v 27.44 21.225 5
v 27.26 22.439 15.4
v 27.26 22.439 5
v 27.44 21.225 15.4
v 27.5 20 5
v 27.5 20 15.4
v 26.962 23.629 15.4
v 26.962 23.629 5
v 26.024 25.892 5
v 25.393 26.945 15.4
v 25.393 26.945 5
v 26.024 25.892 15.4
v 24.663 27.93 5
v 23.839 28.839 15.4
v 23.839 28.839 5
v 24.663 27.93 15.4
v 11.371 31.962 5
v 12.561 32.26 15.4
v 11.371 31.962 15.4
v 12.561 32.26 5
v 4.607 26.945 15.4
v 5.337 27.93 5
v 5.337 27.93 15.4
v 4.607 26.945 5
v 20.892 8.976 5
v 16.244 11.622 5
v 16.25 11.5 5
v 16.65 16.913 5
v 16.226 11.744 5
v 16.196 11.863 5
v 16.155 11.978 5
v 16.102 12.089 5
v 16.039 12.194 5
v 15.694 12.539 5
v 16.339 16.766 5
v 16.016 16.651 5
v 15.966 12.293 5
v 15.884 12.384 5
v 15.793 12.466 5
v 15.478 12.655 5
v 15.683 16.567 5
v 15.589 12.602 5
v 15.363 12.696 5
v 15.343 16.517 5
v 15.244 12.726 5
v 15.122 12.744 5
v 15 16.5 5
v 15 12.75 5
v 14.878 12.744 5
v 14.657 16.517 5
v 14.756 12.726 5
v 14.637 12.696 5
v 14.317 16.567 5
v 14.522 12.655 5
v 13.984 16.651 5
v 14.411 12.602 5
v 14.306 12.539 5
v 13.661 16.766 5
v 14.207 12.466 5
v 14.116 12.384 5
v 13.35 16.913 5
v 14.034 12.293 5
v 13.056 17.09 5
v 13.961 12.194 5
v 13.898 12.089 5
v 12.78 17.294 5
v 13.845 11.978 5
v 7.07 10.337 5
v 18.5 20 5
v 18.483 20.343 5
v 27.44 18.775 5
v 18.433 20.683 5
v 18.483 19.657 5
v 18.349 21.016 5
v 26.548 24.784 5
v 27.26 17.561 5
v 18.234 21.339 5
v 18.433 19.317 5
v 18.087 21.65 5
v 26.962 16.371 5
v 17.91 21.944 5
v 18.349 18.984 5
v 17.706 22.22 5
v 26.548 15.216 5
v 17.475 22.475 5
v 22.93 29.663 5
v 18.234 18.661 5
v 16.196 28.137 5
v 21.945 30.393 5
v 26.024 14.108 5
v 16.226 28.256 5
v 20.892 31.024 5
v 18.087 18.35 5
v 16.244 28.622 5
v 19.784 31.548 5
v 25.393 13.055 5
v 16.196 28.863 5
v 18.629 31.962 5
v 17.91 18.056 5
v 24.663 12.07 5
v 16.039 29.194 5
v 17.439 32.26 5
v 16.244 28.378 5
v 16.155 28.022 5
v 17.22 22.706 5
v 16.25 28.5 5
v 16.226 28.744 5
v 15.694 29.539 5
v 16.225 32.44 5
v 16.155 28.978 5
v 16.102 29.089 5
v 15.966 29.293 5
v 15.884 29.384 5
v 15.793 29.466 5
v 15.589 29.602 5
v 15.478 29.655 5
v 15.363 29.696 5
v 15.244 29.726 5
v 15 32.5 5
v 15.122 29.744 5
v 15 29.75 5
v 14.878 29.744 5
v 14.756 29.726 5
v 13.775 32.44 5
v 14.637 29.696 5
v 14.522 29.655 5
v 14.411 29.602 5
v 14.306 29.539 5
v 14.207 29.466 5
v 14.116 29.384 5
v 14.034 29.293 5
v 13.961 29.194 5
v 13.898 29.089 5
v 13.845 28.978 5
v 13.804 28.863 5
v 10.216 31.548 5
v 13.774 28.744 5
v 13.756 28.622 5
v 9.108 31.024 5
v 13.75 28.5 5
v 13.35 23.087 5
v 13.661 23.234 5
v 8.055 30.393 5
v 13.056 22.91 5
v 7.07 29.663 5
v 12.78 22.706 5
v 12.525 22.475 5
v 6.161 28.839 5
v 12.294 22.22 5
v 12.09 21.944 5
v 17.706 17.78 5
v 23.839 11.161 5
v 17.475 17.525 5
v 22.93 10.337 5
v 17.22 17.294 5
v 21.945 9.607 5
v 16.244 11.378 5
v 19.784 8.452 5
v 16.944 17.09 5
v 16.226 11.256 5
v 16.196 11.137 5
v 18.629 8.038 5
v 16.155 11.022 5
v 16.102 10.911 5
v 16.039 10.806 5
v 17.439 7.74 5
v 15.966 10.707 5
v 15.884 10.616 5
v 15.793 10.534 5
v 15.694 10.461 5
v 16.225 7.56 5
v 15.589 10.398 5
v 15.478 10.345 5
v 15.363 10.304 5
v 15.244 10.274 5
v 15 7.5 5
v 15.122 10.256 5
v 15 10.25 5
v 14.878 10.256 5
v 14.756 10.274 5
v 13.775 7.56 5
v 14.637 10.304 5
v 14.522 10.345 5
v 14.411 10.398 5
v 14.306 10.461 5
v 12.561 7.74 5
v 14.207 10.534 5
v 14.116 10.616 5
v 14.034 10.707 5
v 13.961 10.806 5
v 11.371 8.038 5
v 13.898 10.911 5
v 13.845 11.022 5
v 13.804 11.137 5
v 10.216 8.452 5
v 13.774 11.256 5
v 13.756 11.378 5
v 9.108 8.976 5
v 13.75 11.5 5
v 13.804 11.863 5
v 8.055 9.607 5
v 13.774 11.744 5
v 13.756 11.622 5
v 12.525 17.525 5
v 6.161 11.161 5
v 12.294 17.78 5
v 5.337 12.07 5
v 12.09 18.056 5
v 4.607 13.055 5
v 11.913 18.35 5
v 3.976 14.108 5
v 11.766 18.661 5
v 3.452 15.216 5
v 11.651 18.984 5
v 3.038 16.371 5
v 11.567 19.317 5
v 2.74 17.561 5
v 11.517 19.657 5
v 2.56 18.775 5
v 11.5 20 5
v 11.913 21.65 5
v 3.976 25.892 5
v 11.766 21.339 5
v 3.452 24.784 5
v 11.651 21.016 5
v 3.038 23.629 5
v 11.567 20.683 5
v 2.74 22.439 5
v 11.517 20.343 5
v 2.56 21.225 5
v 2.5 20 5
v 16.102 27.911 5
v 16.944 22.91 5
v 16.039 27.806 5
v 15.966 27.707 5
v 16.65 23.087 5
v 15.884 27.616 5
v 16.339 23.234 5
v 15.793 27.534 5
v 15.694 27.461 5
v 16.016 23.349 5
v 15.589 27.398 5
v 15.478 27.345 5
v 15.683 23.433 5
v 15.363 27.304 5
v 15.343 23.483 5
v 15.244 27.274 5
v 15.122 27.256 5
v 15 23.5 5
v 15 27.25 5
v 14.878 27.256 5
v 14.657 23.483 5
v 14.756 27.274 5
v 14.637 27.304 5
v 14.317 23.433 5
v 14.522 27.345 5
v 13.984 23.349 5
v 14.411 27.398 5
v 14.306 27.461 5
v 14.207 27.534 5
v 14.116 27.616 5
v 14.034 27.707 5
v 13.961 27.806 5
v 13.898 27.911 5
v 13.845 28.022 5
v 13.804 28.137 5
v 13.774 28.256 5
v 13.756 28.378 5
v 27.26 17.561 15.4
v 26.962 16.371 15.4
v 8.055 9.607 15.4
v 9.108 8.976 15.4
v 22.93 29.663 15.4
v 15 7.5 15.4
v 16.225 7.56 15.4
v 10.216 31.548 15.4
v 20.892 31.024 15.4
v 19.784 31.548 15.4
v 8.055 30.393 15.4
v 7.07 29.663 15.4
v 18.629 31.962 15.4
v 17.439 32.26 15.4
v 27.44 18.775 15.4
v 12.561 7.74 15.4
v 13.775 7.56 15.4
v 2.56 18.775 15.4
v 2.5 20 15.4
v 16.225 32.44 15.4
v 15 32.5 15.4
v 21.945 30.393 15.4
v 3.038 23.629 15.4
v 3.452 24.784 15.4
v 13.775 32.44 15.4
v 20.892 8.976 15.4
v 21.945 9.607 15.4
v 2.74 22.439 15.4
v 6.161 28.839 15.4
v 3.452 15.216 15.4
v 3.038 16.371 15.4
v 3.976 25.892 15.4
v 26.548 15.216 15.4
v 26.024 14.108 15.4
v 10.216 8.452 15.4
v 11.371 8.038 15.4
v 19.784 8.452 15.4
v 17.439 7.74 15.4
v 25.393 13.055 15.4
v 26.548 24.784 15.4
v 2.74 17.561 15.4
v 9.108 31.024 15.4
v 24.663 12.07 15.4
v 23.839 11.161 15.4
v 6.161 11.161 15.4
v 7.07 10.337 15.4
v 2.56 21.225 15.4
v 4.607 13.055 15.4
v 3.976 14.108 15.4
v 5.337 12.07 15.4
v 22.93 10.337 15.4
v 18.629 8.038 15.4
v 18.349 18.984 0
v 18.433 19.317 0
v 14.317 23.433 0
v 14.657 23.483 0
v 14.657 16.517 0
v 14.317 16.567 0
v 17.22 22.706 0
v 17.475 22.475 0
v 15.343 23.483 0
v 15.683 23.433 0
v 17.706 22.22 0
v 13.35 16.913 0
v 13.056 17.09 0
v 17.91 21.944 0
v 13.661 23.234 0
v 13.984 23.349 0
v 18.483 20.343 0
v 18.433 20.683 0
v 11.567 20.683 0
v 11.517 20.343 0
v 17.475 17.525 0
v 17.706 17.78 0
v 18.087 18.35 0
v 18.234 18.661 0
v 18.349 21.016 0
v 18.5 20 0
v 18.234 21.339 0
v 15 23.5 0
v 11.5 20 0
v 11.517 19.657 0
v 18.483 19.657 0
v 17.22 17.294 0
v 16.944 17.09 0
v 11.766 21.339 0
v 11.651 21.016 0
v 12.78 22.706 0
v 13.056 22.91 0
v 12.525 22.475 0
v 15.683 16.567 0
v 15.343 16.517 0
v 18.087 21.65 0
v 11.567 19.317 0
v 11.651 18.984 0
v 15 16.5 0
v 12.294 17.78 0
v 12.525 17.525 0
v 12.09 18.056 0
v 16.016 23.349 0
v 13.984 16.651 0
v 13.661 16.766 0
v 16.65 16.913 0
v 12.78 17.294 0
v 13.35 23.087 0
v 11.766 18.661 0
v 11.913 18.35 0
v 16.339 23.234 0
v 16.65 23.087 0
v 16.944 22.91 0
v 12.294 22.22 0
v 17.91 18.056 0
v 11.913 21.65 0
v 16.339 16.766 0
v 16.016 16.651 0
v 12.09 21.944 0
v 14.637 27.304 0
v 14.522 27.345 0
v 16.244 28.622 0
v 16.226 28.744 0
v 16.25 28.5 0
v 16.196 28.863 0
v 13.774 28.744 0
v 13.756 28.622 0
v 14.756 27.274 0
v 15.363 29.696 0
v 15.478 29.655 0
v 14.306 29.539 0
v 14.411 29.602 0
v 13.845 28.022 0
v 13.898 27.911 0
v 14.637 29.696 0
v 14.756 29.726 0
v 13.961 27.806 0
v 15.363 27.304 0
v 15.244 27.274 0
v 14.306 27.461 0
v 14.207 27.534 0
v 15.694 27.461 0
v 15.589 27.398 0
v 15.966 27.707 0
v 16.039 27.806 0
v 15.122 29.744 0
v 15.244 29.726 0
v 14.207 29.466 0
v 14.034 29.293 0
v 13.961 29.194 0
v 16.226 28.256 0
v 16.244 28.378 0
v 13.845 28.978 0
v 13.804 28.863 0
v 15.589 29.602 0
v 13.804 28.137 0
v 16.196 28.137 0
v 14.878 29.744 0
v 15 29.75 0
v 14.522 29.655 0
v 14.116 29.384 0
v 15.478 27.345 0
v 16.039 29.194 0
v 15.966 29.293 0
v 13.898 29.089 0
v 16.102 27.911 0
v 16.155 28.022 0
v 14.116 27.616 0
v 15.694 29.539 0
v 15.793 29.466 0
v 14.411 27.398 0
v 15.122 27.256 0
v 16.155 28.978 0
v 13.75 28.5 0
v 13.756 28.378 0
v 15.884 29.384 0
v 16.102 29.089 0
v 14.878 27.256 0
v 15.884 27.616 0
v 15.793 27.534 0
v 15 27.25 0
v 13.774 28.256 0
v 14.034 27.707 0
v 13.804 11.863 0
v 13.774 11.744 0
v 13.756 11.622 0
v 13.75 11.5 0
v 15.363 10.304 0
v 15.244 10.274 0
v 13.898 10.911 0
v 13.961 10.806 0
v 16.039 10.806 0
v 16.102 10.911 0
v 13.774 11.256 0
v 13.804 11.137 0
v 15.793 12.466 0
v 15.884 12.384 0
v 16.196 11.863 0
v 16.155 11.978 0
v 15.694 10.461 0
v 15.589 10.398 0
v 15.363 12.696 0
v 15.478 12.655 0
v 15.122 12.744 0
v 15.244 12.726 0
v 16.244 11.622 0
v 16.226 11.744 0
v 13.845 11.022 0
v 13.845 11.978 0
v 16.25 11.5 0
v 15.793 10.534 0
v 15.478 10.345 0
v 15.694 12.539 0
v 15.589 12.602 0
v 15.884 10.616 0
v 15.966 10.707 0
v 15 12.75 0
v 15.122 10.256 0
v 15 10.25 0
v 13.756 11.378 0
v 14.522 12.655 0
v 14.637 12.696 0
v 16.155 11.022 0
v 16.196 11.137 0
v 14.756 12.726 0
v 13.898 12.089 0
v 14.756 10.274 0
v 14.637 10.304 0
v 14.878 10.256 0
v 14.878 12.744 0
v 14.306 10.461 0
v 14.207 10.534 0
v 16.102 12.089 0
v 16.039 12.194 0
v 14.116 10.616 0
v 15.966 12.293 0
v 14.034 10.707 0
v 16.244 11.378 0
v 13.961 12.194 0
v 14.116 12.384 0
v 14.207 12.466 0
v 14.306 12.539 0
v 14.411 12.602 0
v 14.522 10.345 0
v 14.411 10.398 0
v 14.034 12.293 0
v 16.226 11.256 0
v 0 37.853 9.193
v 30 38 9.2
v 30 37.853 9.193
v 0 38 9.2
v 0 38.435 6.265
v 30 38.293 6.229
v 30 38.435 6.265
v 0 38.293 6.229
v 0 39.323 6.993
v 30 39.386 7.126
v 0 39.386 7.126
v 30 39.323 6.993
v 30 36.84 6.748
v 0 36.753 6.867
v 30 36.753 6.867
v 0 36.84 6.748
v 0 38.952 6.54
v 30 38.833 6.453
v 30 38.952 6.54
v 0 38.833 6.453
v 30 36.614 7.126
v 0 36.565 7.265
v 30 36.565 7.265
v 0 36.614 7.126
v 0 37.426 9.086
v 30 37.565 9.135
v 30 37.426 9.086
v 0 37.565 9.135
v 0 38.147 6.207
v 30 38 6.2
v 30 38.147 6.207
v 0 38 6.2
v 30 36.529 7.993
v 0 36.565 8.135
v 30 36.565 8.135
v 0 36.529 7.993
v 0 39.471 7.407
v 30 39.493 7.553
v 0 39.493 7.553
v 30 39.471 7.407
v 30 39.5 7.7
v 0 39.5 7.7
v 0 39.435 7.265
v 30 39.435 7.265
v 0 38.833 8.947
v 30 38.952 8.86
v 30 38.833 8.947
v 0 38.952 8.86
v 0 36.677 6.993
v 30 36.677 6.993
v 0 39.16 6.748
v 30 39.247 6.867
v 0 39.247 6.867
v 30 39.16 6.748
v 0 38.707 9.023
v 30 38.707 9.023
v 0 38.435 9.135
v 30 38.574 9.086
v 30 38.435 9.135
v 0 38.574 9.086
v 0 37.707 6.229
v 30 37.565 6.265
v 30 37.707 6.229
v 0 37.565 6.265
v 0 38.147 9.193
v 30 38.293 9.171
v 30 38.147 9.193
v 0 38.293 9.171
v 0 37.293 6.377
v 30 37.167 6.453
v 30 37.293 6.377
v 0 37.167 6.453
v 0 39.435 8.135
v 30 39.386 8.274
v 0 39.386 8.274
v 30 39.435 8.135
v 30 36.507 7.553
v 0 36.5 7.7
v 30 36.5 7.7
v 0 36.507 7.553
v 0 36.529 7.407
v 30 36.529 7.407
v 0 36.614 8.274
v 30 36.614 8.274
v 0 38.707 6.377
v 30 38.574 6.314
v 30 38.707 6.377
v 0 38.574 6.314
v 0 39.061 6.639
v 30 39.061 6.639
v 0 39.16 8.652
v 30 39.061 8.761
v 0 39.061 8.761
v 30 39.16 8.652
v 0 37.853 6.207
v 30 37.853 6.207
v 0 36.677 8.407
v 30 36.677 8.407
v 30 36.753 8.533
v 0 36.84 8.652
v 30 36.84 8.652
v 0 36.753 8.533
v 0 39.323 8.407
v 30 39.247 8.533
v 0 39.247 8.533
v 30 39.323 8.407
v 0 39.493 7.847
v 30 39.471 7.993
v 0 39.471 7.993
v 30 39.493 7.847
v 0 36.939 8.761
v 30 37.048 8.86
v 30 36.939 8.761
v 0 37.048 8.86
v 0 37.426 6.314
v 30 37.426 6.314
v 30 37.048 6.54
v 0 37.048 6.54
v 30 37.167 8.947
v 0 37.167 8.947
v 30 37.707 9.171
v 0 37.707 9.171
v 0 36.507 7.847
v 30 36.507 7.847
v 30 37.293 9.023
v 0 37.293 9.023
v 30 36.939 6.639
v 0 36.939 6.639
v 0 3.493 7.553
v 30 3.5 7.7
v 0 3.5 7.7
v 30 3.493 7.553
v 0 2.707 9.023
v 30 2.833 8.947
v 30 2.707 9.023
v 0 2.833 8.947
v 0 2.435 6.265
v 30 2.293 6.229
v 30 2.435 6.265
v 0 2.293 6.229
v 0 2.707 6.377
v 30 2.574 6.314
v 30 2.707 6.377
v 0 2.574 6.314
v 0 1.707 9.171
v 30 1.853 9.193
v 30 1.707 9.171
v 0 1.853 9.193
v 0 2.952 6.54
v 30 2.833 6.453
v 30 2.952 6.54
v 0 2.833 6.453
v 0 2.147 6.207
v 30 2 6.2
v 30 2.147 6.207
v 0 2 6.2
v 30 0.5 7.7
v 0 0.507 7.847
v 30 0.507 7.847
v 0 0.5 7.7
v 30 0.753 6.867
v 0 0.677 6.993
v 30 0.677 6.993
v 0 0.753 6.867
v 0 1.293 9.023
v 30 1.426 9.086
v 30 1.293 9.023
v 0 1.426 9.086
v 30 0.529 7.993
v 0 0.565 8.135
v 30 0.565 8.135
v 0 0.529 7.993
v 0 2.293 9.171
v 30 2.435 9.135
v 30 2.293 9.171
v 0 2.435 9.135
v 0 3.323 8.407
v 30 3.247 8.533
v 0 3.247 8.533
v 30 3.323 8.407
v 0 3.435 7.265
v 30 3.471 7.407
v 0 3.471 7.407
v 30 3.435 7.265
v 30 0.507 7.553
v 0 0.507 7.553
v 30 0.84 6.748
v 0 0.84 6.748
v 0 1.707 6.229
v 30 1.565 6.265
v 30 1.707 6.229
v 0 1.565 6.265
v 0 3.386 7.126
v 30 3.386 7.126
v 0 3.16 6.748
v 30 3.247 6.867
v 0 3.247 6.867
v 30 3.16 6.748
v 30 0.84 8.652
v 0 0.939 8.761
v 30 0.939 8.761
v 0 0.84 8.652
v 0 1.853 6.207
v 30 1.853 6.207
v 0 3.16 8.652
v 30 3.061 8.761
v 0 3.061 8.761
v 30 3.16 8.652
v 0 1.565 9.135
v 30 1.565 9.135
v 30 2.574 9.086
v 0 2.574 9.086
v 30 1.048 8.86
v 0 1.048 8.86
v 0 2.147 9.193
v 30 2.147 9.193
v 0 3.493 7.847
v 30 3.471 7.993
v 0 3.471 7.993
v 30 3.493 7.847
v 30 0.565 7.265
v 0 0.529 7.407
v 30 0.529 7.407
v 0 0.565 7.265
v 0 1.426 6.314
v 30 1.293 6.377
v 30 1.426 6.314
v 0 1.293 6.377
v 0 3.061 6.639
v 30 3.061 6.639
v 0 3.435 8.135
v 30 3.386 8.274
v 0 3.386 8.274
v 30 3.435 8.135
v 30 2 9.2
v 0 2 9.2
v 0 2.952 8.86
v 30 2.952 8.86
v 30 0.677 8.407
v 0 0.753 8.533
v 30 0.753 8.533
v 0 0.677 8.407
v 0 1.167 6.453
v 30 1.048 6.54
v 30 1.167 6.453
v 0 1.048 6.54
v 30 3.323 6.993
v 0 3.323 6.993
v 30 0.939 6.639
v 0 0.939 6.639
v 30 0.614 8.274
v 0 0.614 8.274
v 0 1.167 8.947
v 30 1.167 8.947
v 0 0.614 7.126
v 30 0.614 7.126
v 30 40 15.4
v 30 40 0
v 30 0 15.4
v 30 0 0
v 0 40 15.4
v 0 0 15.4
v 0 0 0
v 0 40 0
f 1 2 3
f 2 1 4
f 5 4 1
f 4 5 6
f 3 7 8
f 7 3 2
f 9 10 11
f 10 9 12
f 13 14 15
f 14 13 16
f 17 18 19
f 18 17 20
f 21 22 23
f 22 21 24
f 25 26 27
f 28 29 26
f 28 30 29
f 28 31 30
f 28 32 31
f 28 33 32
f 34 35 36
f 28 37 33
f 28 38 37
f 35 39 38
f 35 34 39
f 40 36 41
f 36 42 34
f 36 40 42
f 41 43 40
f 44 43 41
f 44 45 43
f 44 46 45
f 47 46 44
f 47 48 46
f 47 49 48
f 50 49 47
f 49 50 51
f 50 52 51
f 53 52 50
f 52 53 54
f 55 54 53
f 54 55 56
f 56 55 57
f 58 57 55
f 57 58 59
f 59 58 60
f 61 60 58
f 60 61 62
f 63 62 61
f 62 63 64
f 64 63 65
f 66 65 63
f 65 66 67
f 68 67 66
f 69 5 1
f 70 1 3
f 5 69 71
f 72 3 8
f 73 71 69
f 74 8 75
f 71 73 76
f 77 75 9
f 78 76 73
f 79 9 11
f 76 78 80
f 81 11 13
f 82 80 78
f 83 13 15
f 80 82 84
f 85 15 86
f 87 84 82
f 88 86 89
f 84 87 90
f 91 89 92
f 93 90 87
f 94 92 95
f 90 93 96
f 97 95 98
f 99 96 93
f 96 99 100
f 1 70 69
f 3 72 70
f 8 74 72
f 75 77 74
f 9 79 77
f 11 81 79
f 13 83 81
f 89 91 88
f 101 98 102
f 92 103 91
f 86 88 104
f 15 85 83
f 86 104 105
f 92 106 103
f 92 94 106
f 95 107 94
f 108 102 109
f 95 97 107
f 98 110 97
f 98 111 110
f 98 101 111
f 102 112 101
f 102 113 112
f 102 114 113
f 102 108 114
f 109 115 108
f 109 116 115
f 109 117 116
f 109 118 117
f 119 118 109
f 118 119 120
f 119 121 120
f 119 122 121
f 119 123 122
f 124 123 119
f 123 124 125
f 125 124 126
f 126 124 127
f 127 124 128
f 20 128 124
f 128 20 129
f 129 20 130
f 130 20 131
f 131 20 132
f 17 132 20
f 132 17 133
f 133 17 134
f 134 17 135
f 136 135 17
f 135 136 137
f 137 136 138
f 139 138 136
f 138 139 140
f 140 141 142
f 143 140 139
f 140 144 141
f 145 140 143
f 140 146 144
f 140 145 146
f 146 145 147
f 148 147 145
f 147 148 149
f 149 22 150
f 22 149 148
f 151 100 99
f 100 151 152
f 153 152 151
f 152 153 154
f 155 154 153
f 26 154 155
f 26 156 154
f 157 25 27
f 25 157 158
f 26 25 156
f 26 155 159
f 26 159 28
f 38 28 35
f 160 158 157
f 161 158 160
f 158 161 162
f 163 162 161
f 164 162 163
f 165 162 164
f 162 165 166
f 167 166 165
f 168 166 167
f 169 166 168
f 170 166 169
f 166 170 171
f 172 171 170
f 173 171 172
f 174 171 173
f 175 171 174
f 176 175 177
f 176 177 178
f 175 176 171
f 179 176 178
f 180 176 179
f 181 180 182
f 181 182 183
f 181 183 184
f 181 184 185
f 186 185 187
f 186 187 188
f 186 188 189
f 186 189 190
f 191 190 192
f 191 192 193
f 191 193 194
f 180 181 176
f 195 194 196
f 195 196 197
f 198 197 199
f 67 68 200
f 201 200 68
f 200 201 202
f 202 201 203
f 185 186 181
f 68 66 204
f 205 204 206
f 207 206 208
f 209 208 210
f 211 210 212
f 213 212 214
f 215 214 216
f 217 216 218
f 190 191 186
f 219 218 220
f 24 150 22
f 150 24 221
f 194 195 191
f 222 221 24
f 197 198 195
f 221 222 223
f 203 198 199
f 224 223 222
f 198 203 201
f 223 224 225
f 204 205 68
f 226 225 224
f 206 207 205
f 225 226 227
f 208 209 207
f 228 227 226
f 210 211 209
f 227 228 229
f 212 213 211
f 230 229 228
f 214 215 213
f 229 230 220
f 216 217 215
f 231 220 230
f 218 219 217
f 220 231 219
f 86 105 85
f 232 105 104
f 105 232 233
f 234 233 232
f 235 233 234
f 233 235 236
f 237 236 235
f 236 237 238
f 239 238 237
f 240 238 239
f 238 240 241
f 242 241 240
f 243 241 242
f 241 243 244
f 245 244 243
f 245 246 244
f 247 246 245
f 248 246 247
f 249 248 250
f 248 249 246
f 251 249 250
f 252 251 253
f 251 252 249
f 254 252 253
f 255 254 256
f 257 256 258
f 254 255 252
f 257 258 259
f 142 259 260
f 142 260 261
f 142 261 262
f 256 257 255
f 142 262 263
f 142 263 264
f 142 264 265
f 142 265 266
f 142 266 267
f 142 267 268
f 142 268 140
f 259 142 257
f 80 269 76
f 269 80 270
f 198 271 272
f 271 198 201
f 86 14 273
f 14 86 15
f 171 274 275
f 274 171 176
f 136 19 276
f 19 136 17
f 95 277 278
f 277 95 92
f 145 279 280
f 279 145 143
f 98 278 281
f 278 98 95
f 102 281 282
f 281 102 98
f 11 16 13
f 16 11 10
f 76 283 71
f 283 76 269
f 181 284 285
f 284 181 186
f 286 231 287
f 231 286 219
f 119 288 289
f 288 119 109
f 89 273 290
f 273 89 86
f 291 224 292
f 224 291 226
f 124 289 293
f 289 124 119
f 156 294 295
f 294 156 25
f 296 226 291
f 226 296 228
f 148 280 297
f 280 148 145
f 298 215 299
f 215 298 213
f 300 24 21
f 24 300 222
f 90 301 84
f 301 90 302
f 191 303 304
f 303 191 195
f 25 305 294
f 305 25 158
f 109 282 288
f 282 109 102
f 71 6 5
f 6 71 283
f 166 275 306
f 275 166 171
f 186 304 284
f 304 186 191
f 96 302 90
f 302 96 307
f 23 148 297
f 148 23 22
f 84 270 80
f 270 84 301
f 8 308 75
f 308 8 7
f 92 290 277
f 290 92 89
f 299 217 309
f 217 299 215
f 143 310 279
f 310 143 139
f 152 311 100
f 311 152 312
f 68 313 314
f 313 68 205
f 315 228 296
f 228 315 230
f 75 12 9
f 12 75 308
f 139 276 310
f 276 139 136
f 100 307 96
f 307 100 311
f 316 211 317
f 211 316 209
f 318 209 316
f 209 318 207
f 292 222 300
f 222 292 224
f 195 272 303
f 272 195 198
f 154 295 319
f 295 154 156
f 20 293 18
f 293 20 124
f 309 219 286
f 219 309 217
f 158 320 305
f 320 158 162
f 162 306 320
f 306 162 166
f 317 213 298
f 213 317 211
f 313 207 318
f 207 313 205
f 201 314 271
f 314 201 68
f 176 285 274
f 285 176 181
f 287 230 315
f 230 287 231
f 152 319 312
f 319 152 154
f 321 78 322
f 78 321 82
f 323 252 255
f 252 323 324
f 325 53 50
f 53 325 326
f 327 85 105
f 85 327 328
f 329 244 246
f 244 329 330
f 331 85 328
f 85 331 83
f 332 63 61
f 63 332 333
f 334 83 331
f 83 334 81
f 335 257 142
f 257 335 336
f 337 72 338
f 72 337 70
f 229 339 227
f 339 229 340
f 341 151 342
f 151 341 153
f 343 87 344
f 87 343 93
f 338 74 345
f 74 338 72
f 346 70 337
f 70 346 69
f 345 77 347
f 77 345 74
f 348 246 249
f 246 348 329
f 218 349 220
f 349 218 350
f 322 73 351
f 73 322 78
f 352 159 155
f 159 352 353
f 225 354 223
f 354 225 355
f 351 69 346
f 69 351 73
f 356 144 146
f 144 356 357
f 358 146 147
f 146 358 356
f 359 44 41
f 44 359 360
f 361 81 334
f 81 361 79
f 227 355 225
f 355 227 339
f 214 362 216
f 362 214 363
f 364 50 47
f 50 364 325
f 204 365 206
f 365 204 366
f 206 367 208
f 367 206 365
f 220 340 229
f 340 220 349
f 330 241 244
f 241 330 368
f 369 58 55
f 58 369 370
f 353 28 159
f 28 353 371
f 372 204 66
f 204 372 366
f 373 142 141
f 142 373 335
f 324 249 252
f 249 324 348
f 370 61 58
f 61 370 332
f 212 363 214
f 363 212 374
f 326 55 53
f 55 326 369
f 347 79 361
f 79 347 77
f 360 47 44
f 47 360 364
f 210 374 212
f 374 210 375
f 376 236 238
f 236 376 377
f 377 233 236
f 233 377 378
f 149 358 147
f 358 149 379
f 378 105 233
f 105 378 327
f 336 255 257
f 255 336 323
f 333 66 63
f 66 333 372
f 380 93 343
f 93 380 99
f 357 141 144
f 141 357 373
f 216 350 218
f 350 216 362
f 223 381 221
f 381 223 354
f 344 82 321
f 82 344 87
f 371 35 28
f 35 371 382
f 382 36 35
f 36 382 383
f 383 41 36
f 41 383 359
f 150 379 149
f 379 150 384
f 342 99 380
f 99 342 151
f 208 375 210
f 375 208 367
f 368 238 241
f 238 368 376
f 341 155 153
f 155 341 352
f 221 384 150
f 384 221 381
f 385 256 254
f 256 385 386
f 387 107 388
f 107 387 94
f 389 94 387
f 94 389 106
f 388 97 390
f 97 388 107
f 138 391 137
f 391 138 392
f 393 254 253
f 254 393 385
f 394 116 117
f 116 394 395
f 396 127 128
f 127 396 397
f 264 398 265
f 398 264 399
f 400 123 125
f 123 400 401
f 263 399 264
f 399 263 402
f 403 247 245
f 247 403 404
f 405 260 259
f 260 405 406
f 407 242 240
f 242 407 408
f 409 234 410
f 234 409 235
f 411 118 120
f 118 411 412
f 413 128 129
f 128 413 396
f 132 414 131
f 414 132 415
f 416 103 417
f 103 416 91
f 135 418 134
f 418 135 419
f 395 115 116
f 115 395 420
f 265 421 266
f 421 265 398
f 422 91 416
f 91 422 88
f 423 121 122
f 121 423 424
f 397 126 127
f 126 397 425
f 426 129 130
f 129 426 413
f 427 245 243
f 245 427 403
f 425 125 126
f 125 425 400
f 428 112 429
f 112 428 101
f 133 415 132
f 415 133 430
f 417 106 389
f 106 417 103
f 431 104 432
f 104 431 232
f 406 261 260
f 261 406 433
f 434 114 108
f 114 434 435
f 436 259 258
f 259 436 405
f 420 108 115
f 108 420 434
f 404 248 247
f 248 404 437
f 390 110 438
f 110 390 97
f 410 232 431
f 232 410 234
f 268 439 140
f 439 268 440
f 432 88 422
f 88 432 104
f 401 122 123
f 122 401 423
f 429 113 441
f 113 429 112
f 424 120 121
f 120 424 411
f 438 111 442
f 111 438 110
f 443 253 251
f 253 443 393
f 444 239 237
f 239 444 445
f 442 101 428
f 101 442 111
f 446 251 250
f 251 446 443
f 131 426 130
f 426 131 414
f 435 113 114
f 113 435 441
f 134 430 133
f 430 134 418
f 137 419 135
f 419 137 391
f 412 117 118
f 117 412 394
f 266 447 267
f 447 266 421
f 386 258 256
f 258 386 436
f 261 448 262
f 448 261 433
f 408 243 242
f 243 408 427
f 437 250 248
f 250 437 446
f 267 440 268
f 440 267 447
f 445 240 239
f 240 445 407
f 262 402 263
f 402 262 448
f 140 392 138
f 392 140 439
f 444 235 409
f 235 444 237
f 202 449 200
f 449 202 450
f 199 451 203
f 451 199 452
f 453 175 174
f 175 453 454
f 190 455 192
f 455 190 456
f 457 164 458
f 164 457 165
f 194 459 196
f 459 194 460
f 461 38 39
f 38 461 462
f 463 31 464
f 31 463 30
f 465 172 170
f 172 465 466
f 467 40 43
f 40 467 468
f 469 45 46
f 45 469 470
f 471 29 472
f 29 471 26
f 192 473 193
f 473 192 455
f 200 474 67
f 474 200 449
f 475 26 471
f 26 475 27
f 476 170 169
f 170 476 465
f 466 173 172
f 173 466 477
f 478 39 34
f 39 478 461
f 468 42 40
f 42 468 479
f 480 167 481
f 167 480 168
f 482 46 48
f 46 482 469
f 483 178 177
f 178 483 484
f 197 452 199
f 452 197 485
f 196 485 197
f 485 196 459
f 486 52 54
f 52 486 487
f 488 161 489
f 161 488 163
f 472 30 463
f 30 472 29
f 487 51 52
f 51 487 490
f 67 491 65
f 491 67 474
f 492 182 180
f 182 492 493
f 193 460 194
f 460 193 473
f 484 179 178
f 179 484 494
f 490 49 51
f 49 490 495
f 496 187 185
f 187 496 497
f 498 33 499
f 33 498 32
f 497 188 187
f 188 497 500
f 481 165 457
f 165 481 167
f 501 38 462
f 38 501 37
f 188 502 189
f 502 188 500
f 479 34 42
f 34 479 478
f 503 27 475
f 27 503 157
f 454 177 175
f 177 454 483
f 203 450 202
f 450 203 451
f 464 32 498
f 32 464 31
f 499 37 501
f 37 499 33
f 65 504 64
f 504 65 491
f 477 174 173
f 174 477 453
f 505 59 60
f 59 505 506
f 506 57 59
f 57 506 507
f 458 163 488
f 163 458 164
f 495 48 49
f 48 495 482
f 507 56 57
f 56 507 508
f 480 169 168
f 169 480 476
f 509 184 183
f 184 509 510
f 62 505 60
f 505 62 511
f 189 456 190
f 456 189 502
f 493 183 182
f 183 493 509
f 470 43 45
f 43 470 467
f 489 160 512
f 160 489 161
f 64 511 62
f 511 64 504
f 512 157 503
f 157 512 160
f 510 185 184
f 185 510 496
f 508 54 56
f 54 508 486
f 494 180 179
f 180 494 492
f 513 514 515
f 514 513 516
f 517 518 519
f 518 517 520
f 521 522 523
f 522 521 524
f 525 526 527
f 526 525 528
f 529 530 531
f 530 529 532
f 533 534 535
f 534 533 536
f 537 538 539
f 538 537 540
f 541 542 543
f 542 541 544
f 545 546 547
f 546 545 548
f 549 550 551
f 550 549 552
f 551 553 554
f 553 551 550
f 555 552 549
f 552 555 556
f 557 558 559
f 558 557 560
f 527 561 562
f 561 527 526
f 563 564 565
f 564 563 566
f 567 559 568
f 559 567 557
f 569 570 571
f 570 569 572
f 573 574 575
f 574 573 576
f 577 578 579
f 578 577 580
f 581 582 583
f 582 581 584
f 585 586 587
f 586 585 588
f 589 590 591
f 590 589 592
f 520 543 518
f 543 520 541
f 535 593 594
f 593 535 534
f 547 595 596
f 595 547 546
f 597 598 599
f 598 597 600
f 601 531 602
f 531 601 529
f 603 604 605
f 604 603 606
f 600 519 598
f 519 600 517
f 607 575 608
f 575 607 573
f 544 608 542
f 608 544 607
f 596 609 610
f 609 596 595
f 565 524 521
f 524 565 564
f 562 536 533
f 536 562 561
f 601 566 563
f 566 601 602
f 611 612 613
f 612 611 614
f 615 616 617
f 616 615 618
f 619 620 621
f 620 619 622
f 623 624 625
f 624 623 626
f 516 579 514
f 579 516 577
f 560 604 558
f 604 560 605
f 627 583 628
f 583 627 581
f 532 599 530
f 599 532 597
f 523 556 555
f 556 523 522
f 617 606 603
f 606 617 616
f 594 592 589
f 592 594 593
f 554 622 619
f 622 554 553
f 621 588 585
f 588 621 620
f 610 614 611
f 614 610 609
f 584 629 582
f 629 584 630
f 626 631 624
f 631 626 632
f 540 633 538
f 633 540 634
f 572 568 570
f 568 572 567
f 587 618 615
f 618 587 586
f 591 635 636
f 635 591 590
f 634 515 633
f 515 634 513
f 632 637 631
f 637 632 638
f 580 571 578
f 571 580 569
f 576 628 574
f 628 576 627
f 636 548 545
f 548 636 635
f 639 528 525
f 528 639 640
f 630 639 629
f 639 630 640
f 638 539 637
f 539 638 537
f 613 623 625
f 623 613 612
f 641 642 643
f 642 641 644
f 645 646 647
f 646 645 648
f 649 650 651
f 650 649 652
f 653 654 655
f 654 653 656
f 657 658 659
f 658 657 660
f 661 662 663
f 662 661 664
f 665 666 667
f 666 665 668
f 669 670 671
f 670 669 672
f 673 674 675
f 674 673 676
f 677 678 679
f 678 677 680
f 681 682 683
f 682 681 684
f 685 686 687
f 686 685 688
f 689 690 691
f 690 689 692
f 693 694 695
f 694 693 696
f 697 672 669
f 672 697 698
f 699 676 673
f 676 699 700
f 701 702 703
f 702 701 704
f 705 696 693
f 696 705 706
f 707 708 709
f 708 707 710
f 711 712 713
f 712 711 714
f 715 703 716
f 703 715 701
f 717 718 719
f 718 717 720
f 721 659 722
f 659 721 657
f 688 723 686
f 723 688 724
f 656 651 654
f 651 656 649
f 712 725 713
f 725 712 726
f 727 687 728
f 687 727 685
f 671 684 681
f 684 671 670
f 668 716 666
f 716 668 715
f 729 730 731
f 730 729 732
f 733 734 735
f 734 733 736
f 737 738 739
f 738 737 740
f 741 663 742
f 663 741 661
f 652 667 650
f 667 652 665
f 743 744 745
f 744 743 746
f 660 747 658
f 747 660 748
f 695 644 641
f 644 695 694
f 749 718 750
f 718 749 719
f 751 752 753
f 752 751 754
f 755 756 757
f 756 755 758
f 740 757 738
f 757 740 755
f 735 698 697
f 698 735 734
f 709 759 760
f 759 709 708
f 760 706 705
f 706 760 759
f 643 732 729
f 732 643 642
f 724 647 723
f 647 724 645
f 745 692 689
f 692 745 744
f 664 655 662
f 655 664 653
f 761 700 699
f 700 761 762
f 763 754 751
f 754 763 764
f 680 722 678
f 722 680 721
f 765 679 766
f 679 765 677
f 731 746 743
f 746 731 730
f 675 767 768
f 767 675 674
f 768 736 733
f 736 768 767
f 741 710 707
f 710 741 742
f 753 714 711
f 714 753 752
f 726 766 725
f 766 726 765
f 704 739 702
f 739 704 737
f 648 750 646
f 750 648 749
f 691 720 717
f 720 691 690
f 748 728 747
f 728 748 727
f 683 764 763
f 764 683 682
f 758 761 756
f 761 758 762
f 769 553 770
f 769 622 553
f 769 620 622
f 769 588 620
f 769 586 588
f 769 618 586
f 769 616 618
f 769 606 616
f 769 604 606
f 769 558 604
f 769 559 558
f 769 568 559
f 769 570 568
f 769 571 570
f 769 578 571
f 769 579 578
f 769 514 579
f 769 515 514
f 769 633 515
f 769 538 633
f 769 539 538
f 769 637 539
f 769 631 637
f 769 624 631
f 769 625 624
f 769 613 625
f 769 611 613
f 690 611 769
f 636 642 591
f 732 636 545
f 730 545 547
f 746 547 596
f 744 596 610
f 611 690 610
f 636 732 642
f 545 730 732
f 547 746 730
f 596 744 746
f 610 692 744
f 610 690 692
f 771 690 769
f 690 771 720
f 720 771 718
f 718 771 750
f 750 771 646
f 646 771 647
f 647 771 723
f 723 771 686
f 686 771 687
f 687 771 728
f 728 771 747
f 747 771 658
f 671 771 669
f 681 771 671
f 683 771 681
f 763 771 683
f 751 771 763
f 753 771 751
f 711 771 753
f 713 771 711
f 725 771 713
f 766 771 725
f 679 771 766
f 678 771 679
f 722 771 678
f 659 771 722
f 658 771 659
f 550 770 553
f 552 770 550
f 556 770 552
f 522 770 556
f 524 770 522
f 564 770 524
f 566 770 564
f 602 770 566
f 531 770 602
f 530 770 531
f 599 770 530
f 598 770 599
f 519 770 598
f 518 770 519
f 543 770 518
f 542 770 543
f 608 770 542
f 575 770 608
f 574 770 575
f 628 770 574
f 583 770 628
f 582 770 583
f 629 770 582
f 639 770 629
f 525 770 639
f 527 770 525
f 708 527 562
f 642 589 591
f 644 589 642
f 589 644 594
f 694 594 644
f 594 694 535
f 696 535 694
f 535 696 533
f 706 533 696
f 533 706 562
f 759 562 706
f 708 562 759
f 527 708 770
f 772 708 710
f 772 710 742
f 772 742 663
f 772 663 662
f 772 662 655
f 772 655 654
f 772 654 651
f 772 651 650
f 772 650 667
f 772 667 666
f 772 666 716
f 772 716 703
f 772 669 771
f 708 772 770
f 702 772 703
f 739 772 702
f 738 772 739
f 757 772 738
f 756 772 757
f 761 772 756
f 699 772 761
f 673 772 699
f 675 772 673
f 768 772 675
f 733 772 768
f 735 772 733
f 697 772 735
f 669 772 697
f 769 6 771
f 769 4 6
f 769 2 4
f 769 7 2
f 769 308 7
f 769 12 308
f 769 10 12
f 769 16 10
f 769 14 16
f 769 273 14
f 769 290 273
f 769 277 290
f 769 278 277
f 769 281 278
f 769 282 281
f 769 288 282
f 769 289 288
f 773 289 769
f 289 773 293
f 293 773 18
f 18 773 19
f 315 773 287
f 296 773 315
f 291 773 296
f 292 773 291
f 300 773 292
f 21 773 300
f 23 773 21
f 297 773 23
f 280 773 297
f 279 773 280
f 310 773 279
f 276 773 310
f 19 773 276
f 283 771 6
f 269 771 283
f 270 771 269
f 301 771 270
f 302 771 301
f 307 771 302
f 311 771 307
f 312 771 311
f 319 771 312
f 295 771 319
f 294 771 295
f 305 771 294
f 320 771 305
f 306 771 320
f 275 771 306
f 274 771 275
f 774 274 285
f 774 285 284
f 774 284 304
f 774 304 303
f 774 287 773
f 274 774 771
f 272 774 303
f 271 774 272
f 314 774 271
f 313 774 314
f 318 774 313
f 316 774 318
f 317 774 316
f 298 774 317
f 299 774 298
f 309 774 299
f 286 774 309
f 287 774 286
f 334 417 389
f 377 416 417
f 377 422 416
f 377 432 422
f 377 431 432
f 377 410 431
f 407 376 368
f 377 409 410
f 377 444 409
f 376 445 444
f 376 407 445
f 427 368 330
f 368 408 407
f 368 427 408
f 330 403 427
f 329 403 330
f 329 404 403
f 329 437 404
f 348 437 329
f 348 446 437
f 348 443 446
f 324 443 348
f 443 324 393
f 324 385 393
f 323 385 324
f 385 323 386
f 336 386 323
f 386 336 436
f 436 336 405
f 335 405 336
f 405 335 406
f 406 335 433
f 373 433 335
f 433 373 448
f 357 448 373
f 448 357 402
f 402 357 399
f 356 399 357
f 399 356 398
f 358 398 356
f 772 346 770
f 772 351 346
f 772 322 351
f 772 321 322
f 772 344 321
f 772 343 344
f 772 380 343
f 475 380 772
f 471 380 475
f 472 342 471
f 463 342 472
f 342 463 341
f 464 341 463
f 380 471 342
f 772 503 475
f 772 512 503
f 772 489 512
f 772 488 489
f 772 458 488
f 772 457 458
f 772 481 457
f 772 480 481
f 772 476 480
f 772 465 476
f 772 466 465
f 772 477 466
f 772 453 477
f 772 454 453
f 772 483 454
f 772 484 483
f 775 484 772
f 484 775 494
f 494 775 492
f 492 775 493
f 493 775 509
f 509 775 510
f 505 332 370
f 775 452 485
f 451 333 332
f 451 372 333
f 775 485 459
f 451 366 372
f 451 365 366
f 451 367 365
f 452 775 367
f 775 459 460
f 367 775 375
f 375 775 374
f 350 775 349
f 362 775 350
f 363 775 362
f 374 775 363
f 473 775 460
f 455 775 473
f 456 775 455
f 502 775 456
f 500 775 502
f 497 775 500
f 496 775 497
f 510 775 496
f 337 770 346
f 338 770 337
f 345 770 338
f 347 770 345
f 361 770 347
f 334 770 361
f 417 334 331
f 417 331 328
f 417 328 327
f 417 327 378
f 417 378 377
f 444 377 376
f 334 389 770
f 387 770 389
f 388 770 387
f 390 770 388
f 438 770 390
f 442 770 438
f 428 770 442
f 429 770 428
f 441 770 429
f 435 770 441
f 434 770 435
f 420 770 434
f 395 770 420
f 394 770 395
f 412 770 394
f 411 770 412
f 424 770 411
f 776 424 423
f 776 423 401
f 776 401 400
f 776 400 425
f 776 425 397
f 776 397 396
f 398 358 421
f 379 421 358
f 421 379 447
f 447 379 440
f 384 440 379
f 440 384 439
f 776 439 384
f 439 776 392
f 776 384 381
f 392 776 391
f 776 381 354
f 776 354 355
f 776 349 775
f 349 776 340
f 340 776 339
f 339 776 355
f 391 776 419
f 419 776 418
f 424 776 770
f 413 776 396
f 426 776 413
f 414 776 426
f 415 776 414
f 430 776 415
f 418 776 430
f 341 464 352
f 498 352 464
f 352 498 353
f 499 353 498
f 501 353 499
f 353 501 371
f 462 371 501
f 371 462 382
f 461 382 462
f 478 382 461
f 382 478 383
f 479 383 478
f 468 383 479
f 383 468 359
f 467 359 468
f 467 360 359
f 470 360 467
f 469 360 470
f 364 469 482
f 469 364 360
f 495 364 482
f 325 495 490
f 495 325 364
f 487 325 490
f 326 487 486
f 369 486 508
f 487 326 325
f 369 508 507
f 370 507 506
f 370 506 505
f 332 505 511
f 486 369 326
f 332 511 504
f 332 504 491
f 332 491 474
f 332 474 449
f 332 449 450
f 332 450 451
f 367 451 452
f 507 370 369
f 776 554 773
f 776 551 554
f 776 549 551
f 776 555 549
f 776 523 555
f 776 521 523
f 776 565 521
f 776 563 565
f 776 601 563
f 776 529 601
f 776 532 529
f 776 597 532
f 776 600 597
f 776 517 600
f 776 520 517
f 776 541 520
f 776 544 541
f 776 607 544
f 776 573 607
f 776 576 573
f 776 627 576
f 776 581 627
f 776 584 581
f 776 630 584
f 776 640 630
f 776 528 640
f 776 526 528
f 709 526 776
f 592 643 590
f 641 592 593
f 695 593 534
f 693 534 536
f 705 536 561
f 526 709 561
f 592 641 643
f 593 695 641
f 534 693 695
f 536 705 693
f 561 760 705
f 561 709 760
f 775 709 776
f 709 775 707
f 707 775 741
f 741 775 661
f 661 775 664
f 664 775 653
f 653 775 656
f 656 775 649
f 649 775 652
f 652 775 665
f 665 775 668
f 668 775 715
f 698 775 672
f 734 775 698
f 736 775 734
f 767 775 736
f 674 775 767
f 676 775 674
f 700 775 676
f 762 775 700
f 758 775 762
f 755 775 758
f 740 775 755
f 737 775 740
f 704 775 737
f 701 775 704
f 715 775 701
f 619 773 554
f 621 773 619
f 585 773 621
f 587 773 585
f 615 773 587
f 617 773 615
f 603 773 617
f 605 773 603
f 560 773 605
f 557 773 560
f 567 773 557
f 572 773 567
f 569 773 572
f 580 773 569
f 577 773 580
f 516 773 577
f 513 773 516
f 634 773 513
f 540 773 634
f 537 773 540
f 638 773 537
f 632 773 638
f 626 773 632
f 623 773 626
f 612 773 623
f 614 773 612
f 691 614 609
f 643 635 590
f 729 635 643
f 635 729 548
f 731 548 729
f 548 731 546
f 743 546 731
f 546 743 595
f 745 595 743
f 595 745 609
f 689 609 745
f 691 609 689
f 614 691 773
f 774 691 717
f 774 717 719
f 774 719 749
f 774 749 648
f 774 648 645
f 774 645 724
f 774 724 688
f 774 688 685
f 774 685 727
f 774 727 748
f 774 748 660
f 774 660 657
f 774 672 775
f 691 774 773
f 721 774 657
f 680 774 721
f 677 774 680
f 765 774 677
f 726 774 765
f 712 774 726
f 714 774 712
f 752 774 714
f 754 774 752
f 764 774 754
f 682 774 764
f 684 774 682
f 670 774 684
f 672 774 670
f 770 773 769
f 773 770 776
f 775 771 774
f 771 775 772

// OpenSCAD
motor_diameter = 25;
motor_height = 30.8;
motor_shaft_d = 7;
motor_shaft_length = 12;

bogie_width=50-10;
bogie_height=40-10;

motor_mount_thickness=motor_height/2;


motor_mount();

module motor_mount() {
  $fn = 64;
  difference() {
    cube(size=[bogie_height, bogie_width, motor_mount_thickness], center=false);
    translate([bogie_height/2, bogie_width/2, 0]) {
      translate([0, 0, 5]) {
        cylinder(d=motor_diameter, h=motor_height+2, center=false);
      }
      translate([0, 0, -1]) {
        cylinder(d=motor_shaft_d, h=motor_shaft_length, center=false);
      }
      translate([0, 8.5, -1]) {
        cylinder(d=2.5, h=20, center=false);
      }
      translate([0, -8.5, -1]) {
        cylinder(d=2.5, h=20, center=false);
      }
      translate([0, 18, motor_mount_thickness/2]) {
        rotate([0, 90, 0]) {
          cylinder(d=3, h=50, center=true);
        }
      }
      translate([0, -18, motor_mount_thickness/2]) {
        rotate([0, 90, 0]) {
          cylinder(d=3, h=50, center=true);
        }
      }
    }
  }
}
